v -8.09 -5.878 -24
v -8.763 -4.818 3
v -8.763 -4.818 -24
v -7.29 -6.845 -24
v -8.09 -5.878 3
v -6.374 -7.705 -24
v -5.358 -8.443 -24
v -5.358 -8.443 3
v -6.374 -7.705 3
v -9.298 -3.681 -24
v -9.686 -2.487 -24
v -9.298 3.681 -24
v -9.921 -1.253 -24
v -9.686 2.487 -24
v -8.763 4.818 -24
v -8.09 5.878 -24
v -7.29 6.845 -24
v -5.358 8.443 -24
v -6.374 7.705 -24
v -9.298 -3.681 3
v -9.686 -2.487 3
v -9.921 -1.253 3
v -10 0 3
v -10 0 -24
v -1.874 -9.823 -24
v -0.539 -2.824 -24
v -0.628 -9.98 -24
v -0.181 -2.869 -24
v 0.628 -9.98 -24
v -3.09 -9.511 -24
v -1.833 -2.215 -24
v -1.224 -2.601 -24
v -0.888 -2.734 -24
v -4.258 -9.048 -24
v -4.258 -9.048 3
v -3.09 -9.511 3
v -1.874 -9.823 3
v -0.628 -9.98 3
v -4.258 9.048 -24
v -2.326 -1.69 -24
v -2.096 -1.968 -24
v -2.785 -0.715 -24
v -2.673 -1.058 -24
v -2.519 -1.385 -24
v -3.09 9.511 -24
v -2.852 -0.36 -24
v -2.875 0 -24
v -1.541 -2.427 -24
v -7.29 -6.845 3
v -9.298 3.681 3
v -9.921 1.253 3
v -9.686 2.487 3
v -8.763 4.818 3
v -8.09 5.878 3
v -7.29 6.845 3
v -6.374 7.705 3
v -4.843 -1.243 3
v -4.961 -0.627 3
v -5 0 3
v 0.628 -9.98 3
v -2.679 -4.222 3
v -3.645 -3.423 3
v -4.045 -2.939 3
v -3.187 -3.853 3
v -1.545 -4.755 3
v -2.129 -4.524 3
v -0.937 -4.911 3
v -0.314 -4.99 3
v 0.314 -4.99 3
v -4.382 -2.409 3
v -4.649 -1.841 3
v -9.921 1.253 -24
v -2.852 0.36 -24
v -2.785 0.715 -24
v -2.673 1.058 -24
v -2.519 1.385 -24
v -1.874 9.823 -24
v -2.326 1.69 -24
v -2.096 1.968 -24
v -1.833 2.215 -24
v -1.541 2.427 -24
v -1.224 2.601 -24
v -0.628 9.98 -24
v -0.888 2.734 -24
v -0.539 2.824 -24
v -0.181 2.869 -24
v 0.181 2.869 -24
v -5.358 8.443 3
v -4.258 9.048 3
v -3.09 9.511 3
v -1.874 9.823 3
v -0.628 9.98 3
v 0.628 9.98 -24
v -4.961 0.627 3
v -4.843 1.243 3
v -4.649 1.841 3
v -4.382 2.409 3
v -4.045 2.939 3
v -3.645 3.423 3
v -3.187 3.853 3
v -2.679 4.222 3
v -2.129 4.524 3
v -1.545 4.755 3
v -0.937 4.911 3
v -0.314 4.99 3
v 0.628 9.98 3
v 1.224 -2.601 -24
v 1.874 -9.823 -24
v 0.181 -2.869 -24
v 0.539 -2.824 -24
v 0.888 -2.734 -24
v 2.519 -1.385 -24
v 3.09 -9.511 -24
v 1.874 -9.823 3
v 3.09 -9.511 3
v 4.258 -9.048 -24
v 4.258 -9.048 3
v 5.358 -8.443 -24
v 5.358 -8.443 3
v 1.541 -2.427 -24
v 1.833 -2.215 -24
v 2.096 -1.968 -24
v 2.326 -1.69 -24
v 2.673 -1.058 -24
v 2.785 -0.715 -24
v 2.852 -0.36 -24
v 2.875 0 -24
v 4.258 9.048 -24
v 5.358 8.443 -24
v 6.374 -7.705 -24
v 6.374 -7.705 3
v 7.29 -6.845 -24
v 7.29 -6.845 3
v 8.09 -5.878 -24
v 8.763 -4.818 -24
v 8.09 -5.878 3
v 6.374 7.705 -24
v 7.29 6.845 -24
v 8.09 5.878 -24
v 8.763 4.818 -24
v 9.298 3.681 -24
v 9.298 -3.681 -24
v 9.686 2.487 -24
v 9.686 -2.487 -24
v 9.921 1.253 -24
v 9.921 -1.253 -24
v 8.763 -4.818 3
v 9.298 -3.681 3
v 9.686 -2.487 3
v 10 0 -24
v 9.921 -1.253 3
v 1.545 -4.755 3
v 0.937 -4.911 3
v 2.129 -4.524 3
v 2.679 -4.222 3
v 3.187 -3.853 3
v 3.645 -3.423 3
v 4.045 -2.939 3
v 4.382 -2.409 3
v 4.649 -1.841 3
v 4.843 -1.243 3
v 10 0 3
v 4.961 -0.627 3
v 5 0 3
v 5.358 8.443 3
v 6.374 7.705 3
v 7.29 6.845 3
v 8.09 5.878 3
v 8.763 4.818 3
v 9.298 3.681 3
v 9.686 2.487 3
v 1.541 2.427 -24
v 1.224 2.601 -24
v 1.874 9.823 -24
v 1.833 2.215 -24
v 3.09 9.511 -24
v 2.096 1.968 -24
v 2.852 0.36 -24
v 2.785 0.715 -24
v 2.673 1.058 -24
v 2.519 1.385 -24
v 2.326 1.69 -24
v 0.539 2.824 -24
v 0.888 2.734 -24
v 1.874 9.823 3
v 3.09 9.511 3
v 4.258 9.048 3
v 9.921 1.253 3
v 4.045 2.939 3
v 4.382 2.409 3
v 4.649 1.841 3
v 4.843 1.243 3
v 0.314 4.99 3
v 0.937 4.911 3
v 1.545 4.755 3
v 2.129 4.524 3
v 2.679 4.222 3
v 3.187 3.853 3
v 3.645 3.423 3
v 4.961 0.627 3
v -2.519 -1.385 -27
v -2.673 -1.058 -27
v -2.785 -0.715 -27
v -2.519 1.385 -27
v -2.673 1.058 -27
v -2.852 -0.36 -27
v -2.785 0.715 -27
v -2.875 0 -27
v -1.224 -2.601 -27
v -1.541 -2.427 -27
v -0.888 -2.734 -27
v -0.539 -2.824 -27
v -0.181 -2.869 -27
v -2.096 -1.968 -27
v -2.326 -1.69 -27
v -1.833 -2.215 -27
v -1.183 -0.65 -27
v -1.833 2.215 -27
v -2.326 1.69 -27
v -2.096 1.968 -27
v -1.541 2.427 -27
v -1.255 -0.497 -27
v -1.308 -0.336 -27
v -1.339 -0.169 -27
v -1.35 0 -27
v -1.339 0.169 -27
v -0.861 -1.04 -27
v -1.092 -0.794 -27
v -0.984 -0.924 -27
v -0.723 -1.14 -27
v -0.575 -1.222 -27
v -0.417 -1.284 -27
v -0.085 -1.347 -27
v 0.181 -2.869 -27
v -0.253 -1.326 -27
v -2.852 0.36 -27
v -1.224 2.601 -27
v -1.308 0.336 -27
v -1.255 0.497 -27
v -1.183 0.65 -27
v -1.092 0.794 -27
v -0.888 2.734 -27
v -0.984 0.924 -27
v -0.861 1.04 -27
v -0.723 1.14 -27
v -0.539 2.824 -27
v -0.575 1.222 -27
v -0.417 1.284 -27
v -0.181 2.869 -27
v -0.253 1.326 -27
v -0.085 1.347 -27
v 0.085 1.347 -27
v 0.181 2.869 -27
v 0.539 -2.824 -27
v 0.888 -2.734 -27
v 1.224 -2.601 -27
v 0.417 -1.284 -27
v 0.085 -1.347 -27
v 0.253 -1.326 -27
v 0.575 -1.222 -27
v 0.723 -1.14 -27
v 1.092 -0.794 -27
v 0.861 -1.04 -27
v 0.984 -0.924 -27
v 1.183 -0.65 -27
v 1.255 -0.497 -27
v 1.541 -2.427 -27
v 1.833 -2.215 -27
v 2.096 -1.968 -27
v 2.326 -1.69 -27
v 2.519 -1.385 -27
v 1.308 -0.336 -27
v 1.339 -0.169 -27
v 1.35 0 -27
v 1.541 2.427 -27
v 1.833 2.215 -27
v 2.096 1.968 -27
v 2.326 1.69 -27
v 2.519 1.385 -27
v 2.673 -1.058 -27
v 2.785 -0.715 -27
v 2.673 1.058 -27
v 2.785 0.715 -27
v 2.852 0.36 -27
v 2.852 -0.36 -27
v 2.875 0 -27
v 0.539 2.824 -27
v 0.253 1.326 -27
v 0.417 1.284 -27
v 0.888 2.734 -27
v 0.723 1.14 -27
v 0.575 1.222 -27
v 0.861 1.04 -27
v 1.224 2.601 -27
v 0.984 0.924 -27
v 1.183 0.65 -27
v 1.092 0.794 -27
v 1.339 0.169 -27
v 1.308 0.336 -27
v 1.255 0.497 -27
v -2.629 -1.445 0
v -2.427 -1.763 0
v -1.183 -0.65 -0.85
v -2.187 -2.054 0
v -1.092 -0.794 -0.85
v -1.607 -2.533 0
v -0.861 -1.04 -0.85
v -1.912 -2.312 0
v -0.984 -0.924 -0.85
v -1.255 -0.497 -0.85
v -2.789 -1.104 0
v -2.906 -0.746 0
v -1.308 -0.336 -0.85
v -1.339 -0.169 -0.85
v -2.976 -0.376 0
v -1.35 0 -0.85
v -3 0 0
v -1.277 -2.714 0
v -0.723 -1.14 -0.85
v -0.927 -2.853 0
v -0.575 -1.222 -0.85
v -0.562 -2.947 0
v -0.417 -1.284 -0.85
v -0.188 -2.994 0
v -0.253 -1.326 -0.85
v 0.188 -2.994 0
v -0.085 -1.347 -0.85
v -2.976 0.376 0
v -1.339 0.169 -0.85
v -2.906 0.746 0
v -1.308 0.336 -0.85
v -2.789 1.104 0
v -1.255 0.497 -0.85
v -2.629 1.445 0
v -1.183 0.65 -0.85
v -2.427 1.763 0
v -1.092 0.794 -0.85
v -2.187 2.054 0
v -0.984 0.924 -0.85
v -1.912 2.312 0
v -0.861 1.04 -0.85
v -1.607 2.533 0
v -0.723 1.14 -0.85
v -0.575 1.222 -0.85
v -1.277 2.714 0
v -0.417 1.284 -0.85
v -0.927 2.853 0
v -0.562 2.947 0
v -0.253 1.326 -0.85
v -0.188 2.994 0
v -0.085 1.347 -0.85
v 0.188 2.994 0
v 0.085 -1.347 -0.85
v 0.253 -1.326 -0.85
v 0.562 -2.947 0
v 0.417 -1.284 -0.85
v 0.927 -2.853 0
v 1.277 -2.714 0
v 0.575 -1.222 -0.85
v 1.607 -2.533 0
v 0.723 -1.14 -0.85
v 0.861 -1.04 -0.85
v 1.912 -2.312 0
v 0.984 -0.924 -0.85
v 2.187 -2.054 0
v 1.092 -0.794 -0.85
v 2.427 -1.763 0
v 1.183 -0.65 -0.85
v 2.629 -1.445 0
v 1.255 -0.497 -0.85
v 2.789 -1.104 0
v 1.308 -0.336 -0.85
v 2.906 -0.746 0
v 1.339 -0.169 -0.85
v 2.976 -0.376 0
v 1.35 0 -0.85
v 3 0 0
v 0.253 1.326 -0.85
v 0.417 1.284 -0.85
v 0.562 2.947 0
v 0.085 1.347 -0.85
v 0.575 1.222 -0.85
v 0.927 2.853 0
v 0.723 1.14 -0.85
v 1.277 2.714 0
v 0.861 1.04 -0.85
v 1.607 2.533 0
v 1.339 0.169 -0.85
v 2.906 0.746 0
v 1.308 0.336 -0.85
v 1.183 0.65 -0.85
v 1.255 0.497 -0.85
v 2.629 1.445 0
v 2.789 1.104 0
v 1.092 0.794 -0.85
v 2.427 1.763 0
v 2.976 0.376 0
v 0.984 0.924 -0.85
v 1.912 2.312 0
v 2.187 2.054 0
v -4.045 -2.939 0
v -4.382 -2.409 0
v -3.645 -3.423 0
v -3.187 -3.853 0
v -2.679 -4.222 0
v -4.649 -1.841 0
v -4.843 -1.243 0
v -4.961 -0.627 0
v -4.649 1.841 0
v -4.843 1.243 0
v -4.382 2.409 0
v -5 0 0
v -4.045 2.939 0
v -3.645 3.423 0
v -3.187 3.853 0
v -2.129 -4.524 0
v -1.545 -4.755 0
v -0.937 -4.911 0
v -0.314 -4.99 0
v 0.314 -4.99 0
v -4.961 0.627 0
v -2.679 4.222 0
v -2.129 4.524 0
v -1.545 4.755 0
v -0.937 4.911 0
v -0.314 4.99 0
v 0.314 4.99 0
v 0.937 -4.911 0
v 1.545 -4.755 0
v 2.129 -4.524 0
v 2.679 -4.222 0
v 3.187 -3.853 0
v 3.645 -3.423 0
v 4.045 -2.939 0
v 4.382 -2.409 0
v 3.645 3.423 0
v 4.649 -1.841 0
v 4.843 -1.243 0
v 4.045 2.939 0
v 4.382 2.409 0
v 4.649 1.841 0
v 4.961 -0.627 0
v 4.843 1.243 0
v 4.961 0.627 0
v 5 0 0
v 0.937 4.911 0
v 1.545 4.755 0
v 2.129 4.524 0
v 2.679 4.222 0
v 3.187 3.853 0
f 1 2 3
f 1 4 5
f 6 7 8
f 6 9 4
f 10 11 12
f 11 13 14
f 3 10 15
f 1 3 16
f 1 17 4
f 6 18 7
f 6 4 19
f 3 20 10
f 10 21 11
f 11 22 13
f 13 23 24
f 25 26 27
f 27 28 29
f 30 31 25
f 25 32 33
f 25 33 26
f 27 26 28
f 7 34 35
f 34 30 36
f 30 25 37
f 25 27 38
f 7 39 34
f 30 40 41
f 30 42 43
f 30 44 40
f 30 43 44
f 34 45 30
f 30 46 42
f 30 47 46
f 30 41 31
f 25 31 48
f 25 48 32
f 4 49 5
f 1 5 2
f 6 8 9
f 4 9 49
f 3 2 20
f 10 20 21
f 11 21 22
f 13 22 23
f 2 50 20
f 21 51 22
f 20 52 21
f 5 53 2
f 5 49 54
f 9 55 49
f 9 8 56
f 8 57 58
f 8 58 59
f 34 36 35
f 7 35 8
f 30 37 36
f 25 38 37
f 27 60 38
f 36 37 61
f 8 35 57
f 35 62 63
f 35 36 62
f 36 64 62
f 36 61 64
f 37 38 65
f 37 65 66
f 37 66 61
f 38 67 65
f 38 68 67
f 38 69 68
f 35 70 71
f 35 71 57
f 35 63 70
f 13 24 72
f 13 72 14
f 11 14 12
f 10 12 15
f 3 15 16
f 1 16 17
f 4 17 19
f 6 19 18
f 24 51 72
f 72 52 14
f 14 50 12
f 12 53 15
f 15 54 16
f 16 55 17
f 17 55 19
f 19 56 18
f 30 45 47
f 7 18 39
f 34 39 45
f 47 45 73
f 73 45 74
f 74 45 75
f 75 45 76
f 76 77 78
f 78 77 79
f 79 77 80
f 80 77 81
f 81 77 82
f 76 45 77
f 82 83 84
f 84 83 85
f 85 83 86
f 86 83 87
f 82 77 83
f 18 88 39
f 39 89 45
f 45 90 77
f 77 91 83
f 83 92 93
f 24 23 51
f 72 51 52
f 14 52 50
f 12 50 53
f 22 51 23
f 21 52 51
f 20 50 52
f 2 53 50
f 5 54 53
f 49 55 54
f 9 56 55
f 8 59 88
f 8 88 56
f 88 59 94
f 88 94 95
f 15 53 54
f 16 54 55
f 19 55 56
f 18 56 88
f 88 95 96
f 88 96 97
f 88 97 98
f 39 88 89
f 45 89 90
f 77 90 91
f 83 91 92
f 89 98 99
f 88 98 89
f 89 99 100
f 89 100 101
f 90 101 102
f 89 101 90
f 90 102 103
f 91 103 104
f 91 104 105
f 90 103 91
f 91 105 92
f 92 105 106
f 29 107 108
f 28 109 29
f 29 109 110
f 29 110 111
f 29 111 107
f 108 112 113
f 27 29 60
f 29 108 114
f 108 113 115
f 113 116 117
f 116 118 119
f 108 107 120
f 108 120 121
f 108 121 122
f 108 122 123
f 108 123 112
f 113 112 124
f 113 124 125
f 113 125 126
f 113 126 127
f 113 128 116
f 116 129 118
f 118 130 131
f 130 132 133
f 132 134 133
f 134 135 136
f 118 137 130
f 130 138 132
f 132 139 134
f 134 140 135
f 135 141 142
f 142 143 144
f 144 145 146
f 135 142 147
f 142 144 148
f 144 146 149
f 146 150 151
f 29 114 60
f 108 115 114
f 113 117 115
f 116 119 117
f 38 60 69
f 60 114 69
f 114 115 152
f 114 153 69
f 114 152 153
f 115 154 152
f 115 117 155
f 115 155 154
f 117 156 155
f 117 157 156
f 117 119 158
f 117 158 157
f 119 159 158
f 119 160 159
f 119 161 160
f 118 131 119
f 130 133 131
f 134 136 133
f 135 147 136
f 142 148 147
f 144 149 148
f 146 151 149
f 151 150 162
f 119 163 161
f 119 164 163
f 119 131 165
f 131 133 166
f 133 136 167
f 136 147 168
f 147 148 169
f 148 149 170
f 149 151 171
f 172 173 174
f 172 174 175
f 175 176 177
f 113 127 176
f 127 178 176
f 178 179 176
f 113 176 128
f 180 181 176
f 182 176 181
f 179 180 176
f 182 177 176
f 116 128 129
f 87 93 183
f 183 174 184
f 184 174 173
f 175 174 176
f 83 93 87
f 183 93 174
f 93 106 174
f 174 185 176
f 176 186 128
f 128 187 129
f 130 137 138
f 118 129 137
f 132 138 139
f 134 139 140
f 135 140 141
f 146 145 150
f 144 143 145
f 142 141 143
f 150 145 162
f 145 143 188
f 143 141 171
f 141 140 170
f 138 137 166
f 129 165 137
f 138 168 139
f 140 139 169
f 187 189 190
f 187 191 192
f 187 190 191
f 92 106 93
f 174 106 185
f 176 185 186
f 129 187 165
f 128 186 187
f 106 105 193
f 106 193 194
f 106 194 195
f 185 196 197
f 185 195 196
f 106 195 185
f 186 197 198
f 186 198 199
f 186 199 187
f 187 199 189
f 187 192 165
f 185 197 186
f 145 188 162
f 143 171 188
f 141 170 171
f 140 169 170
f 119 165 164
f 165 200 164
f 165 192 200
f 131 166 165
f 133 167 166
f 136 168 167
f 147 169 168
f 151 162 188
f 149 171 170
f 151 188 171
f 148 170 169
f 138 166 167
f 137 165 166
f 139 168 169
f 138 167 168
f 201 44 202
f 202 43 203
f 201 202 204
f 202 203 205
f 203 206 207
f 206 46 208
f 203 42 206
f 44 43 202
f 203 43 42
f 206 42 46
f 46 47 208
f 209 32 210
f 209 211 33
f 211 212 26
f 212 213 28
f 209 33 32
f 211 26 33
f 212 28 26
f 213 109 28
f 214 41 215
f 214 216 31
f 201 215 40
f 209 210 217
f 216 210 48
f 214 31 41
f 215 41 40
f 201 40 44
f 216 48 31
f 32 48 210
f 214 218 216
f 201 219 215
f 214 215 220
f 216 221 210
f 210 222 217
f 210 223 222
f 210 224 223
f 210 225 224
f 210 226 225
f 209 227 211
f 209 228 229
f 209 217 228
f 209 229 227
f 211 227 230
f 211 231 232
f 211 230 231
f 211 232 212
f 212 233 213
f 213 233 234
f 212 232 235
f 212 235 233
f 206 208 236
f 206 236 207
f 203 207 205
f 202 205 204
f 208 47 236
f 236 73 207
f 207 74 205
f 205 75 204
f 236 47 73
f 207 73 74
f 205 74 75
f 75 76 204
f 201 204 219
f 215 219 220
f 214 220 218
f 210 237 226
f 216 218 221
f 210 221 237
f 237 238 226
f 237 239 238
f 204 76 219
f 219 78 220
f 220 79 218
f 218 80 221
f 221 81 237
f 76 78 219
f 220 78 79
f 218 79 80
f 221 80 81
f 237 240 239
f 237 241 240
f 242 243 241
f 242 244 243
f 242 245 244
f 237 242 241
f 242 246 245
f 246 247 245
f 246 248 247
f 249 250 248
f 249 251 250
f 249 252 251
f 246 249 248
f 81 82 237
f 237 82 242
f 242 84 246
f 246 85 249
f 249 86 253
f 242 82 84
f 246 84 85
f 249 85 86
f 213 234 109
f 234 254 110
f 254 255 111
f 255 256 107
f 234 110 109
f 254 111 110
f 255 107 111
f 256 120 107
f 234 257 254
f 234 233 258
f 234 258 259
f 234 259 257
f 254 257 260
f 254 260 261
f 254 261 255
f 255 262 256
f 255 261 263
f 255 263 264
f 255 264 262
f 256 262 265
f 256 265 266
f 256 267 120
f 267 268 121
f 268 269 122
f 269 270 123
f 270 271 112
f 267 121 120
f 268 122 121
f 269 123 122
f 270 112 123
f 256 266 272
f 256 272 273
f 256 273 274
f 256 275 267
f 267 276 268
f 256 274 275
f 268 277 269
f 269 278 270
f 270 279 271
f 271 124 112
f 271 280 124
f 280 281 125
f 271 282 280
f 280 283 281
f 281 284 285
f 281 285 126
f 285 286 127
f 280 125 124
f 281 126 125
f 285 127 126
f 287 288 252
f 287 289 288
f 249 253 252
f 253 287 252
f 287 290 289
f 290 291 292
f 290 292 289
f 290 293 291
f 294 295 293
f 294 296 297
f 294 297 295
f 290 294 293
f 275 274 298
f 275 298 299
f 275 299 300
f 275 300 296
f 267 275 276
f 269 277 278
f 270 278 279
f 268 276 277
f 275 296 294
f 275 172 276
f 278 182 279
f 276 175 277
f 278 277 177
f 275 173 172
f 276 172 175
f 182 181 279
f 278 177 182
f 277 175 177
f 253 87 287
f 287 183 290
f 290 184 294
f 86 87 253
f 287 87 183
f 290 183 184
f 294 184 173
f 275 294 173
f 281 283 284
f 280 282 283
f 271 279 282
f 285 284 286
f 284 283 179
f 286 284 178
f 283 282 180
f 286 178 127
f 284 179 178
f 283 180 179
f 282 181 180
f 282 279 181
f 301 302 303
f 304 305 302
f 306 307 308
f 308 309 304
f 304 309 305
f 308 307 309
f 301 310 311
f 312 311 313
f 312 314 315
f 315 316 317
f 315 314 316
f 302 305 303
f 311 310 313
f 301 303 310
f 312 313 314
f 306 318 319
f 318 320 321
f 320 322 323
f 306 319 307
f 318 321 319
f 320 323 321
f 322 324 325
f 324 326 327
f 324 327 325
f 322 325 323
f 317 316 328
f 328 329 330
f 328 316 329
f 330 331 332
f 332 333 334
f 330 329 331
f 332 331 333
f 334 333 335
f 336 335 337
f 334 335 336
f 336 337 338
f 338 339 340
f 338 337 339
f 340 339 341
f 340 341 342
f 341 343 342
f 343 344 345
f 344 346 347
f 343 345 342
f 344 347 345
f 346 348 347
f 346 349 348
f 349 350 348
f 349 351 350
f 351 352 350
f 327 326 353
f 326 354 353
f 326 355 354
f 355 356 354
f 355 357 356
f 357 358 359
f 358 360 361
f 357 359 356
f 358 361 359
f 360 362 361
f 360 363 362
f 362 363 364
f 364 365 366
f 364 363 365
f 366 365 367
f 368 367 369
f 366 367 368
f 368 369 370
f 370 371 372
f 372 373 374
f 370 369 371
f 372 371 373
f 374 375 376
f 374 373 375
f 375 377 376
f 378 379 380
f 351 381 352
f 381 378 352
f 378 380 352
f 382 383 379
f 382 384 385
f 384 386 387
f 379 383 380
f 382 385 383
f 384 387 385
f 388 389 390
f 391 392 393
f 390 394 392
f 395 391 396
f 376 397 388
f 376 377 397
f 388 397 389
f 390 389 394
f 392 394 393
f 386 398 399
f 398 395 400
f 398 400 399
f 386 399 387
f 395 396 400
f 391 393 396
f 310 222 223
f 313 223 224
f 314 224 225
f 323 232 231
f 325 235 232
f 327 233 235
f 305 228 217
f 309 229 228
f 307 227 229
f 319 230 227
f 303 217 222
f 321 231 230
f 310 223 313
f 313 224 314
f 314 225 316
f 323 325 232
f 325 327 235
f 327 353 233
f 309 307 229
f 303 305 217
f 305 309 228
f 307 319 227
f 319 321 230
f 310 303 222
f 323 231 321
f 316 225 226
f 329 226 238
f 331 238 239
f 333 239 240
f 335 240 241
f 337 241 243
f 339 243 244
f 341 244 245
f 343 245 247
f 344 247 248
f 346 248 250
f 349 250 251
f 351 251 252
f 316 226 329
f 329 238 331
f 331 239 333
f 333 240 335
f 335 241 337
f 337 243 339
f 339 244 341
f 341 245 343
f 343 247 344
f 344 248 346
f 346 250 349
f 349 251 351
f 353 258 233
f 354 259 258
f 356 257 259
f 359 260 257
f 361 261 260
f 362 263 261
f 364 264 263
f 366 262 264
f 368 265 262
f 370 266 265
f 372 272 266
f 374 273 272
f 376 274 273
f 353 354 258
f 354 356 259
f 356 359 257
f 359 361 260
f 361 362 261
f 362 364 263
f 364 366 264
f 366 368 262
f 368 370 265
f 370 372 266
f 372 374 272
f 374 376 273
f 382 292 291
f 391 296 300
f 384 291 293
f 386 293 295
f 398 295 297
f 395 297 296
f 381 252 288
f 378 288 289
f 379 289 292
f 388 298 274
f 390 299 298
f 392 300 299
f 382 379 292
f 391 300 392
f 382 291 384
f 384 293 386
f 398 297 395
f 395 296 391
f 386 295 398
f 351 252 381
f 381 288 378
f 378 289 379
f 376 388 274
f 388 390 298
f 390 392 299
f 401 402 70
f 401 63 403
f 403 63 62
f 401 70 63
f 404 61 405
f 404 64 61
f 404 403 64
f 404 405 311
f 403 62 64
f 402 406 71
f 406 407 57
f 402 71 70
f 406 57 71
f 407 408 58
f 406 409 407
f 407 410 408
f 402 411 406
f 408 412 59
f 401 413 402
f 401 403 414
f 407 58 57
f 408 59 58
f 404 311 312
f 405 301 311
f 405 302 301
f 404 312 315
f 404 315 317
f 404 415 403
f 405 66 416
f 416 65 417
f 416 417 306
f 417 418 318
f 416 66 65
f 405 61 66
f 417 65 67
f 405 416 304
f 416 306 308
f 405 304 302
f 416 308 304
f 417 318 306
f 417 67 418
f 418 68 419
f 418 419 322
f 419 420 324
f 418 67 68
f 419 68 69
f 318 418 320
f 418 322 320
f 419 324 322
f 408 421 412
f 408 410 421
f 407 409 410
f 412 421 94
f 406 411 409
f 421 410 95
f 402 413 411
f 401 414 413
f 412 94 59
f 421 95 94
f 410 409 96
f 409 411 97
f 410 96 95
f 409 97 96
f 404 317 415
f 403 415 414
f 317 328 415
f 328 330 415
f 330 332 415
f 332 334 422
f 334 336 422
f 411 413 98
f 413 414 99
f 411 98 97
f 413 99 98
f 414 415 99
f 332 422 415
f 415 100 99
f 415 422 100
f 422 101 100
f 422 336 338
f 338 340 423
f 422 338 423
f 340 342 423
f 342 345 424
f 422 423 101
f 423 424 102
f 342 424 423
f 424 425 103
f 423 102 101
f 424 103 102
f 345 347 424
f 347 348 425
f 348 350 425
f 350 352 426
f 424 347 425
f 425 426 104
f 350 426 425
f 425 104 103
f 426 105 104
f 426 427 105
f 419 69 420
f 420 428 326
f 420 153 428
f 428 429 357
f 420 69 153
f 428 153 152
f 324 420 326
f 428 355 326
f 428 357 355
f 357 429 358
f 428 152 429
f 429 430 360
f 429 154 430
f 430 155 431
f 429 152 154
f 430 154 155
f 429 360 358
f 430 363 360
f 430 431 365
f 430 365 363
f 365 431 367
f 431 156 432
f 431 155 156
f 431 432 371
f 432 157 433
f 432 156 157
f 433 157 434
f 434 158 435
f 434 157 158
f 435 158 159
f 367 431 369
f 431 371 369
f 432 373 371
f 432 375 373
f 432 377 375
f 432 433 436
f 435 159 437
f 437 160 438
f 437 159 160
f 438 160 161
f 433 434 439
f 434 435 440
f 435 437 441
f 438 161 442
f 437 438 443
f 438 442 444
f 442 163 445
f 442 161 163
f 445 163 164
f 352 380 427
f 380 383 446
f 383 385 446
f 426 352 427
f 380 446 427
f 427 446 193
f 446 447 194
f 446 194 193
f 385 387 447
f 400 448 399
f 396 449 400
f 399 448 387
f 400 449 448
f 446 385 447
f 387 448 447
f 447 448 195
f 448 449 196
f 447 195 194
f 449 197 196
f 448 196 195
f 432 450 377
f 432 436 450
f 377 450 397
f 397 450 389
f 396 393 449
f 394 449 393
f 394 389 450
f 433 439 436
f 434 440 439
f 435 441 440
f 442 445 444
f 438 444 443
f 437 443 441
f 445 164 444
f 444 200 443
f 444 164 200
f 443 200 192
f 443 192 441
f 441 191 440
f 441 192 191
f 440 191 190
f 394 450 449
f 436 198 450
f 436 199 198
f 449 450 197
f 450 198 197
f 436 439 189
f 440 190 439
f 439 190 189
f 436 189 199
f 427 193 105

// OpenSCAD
$fn = 50;

difference() {
	union() {
		translate(v = [0, 0, -24.0]) {
			cylinder(h = 27, r = 10.0);
		}
		#translate(v = [0, 0, -27.0]) {
			cylinder(h = 27, r = 2.875);
		}
	}
	union() {
		translate(v = [0, 0, 0]) {
			rotate(a = [0, 0, 0]) {
				difference() {
					union() {
						translate(v = [0, 0, -27.0]) {
							cylinder(h = 27, r = 1.0);
						}
						translate(v = [0, 0, -0.85]) {
							cylinder(h = 0.85, r1 = 1.35, r2 = 3.0);
						}
						translate(v = [0, 0, -27.0]) {
							cylinder(h = 27, r = 1.35);
						}
						translate(v = [0, 0, -27.0]) {
							cylinder(h = 27, r = 1.0);
						}
					}
					union();
				}
			}
		}
		#cylinder(h = 3, r = 5.0);
	}
}
